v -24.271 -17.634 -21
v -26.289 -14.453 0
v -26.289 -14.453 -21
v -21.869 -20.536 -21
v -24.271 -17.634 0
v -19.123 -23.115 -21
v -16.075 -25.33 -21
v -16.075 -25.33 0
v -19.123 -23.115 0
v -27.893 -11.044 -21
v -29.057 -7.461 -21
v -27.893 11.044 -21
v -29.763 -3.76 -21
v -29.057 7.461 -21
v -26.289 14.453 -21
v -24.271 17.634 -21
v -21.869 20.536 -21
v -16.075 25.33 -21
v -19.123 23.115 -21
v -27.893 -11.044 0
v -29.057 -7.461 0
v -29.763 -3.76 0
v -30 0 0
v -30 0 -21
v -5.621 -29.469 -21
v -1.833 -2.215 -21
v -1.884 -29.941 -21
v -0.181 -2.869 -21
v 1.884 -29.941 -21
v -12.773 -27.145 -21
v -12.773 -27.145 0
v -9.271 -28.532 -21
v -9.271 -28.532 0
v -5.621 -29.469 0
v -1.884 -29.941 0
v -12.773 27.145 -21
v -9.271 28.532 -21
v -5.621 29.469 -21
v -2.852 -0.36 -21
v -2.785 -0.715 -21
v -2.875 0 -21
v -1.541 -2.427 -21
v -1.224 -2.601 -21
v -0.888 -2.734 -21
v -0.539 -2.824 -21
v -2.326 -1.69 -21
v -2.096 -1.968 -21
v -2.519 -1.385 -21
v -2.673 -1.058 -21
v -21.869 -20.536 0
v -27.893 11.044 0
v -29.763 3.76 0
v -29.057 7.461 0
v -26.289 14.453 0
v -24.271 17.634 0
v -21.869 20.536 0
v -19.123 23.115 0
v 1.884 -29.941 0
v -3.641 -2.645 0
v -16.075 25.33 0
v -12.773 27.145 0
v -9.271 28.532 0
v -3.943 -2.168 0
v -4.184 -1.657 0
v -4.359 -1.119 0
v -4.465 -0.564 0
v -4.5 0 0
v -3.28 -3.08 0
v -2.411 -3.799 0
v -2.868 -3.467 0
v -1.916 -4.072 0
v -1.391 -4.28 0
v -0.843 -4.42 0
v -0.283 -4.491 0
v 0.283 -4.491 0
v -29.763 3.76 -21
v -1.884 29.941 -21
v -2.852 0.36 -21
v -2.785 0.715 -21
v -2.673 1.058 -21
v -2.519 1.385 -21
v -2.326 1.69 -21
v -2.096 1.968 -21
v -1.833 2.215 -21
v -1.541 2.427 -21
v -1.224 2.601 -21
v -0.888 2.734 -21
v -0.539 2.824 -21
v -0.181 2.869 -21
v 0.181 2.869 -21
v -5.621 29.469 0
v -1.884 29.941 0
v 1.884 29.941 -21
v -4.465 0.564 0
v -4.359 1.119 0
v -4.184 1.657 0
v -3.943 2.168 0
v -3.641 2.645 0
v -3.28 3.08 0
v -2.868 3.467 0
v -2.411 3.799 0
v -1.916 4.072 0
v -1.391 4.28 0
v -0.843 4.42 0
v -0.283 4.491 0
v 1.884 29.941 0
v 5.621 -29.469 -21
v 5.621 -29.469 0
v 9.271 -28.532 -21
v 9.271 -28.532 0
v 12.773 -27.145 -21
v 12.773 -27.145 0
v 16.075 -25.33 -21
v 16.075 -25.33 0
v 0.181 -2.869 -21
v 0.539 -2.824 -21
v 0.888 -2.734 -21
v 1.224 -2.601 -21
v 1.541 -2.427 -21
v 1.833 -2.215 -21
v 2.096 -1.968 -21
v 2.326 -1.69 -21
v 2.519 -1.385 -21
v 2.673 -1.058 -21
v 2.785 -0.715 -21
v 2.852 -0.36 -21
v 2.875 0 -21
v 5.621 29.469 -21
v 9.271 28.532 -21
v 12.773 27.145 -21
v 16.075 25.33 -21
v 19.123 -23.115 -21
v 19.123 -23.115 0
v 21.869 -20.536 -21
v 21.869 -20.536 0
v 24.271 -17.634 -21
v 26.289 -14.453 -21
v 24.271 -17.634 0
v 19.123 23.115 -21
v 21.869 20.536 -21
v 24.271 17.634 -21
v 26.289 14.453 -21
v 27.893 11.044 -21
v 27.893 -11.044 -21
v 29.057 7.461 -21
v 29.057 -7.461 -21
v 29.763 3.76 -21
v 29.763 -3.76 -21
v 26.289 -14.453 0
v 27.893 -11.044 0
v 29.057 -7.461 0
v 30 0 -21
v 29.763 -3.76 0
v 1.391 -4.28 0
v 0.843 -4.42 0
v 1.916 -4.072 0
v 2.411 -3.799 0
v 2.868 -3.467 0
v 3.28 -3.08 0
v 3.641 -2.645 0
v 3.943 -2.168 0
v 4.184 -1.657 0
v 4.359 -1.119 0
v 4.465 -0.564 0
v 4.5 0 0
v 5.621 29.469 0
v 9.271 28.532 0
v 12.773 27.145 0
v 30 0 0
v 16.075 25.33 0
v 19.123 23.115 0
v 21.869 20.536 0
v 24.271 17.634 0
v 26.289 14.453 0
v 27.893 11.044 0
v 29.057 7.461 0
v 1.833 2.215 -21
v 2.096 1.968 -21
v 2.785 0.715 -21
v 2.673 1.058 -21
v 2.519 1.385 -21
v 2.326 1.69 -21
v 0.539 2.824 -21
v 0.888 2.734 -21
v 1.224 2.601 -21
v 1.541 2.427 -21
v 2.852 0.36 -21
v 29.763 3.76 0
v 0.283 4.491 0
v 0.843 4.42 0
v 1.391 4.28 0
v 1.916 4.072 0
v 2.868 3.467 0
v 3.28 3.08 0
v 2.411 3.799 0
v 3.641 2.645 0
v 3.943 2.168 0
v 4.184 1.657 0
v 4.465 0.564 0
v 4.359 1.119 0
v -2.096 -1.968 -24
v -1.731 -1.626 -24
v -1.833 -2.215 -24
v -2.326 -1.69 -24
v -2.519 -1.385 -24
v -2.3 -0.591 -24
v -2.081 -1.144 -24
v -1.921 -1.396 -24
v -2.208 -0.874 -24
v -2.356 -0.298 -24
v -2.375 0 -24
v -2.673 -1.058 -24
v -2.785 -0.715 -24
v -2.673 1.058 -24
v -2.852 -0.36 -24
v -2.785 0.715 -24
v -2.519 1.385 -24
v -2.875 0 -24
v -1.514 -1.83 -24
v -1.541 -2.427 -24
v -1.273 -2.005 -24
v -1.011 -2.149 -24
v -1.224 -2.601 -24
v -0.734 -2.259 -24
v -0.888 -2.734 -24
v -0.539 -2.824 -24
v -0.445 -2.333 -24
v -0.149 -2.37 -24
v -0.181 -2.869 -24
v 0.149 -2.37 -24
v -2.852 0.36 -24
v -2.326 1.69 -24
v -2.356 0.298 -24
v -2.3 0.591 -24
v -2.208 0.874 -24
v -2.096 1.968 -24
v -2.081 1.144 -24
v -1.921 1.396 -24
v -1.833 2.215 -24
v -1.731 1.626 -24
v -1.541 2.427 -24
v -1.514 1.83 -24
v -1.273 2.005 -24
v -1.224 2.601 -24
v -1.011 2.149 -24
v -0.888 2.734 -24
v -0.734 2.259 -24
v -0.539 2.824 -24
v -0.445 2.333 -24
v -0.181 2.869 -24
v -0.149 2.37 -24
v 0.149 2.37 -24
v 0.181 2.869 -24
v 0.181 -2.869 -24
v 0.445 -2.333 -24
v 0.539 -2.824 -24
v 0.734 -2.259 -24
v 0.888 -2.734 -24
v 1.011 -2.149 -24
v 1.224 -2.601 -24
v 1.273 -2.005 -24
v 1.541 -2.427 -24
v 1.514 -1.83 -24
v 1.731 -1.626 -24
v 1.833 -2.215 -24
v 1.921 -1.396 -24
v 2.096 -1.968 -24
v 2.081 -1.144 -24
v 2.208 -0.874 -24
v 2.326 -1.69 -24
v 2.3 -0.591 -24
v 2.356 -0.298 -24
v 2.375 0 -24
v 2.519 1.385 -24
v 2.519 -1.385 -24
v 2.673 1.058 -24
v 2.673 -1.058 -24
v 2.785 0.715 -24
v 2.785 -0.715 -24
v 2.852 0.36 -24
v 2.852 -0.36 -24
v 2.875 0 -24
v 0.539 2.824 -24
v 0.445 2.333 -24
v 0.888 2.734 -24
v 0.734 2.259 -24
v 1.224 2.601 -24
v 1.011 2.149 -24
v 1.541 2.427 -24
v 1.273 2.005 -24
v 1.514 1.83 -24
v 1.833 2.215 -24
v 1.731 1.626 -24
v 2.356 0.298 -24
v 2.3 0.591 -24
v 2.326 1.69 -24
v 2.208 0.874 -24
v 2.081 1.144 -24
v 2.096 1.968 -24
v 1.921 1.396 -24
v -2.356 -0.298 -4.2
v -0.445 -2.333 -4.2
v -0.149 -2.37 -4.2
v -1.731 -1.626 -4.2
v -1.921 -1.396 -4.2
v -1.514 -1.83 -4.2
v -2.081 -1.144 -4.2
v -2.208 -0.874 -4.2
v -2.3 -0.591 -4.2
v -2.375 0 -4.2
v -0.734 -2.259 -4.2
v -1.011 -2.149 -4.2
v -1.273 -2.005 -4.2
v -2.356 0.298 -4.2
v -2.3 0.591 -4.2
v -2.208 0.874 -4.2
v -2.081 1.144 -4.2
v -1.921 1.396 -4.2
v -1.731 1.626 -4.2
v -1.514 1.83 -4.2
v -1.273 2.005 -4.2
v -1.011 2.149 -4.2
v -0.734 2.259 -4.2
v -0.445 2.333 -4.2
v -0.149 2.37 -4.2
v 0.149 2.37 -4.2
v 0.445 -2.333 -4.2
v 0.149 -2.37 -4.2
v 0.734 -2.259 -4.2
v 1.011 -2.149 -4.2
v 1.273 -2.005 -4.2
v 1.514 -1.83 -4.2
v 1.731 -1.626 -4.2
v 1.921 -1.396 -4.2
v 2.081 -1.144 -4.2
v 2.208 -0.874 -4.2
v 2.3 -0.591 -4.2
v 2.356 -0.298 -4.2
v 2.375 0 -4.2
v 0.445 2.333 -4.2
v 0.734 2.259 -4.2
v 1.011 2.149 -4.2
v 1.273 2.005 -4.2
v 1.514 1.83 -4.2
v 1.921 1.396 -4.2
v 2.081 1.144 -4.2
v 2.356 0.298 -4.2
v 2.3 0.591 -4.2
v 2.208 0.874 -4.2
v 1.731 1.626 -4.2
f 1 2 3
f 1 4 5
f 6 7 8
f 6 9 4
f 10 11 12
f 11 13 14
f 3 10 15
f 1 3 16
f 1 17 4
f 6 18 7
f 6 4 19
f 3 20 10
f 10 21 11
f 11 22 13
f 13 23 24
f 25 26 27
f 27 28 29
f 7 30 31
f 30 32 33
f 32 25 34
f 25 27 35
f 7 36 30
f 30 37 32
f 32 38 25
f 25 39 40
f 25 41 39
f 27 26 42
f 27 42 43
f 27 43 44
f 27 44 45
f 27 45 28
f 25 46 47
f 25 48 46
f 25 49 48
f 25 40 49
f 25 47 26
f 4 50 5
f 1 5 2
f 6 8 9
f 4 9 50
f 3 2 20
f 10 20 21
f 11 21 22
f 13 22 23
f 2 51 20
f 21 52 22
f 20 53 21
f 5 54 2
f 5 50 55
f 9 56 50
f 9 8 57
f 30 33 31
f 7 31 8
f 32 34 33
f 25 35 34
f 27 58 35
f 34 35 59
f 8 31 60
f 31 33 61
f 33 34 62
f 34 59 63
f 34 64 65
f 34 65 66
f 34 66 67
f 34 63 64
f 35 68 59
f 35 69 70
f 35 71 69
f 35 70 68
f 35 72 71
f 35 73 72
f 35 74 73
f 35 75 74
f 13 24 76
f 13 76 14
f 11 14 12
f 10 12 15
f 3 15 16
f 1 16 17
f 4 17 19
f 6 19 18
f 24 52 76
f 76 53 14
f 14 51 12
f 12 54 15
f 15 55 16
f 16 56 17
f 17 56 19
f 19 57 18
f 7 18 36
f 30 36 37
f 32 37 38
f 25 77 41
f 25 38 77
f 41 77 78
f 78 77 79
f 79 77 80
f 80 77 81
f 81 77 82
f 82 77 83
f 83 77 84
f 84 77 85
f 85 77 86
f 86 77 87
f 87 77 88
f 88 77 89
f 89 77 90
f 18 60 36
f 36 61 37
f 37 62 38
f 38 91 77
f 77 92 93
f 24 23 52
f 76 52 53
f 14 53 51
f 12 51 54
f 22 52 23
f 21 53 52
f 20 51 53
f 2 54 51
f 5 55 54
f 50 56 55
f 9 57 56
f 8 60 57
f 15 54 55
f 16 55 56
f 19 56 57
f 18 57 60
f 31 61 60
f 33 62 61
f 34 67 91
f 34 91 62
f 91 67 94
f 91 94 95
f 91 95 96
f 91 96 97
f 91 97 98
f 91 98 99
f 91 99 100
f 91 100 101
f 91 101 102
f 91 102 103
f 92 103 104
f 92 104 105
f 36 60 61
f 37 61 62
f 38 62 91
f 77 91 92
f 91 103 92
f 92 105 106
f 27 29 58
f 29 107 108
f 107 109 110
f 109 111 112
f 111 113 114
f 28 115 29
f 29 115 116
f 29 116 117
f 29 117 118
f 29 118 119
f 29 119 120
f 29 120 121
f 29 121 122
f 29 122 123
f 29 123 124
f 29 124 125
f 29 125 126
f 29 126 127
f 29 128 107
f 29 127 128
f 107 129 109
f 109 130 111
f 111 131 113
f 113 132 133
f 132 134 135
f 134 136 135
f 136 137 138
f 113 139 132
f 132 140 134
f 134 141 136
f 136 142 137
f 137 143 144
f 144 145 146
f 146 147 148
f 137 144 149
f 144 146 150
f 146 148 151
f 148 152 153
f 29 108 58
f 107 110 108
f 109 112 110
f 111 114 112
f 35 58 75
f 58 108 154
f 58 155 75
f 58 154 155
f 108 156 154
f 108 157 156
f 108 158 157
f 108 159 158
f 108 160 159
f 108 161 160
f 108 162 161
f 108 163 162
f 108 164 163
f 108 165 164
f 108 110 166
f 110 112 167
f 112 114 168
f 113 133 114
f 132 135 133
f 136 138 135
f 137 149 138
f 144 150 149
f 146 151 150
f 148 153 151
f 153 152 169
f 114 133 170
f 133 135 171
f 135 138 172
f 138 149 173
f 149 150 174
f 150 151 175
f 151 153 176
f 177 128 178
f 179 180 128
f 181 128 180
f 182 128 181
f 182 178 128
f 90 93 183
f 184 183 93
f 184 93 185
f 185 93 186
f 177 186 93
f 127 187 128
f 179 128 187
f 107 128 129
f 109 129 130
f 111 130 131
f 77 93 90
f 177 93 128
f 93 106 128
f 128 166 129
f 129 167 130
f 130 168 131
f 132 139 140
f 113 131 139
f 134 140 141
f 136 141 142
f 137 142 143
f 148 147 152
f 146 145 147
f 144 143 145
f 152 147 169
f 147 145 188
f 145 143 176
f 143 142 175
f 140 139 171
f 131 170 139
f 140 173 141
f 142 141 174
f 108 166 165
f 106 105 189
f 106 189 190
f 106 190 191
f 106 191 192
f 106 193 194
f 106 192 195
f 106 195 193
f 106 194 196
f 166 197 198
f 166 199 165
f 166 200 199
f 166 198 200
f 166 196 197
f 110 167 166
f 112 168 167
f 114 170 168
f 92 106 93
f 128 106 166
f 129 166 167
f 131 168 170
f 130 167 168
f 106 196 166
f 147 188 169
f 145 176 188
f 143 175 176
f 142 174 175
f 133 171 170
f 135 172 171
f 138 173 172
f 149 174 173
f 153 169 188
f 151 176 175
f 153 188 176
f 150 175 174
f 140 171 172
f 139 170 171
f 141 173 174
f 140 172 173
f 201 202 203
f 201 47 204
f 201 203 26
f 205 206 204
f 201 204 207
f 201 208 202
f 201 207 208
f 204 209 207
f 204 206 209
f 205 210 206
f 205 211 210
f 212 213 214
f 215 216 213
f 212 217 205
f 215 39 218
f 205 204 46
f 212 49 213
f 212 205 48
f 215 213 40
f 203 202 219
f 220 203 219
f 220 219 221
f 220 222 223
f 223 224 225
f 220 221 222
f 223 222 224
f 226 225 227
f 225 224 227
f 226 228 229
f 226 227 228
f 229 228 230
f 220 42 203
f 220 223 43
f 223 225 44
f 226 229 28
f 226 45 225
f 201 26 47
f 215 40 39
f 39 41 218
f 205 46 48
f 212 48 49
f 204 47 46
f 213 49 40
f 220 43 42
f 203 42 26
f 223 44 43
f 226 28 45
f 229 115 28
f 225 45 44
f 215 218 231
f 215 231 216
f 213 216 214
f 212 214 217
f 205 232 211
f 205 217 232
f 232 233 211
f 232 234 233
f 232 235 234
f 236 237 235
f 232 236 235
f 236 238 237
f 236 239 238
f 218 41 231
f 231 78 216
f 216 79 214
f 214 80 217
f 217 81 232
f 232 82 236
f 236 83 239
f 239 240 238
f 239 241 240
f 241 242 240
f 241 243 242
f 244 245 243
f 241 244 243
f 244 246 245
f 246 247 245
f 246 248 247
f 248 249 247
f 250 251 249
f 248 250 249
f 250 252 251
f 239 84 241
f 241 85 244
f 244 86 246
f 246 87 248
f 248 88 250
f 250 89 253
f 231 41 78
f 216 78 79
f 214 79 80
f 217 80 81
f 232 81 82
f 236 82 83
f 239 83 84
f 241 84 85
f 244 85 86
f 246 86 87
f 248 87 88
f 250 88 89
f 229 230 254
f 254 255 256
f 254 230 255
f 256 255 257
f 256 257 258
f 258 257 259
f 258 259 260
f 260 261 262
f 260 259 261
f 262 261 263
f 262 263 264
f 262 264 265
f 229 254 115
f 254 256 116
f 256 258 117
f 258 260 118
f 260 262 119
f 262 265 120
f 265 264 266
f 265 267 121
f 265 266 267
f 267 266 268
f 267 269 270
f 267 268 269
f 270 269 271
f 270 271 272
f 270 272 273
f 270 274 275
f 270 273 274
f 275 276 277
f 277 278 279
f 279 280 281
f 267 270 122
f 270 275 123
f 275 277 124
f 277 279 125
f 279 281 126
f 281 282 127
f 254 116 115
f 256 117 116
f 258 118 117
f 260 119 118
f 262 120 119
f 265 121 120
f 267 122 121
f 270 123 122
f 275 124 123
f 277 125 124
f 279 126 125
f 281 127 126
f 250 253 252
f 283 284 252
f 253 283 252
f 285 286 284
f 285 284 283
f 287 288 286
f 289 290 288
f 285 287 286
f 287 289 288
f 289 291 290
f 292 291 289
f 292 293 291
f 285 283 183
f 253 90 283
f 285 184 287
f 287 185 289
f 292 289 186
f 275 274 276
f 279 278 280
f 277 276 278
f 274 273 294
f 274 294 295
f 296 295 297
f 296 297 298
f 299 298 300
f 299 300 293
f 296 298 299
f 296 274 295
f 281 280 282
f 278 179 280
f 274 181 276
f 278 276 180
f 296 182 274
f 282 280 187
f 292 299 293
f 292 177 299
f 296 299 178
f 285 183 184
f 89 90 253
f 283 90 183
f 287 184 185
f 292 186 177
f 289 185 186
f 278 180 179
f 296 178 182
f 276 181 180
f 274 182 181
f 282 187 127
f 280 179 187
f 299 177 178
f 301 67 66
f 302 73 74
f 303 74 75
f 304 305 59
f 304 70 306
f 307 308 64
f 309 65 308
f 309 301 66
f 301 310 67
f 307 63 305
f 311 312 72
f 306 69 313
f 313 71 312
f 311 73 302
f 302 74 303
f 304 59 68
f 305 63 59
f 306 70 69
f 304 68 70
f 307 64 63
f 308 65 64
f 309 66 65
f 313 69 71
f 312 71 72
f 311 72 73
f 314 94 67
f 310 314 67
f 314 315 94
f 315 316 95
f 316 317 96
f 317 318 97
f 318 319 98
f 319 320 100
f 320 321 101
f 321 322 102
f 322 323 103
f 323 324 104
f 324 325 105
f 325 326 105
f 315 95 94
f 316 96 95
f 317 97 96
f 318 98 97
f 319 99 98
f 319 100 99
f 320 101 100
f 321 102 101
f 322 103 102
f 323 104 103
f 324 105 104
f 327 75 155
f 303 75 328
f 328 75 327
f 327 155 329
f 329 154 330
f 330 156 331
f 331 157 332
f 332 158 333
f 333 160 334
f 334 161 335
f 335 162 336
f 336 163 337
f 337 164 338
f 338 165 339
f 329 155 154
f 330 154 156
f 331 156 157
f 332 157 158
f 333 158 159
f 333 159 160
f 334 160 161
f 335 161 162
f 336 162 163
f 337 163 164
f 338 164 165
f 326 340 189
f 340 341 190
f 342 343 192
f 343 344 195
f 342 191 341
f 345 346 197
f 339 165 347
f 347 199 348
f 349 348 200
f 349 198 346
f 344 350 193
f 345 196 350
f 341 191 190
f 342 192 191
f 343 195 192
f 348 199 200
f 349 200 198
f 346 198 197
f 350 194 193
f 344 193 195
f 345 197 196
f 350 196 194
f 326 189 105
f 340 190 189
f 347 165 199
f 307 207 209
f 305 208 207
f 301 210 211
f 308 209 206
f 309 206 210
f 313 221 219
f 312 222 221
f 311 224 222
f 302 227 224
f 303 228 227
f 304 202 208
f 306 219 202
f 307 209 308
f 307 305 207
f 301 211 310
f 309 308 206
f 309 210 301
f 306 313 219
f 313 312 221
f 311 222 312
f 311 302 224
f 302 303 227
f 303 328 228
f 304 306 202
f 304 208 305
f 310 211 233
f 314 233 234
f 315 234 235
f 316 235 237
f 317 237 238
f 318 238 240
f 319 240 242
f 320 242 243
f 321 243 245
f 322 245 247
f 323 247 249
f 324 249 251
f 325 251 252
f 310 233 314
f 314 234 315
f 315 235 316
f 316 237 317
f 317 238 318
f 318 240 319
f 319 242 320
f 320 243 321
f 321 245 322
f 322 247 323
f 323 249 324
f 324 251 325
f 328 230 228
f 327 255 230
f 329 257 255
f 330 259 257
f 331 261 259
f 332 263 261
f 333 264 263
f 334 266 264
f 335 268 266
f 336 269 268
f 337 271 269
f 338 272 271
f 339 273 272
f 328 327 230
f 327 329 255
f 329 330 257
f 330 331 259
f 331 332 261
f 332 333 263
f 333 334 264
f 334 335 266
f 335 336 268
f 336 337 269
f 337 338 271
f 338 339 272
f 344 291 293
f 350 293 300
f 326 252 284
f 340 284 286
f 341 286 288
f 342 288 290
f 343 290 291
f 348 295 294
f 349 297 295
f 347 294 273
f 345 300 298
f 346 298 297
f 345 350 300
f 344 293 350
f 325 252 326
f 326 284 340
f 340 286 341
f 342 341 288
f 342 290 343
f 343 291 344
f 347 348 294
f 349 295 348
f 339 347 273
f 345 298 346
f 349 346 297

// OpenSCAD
$fn = 50;

difference() {
	union() {
		translate(v = [0, 0, -21.0]) {
			cylinder(h = 21, r = 30.0);
		}
		#translate(v = [0, 0, -24.0]) {
			cylinder(h = 24, r = 2.875);
		}
	}
	union() {
		translate(v = [0, 0, 0]) {
			rotate(a = [0, 0, 0]) {
				difference() {
					union() {
						translate(v = [0, 0, -24.0]) {
							cylinder(h = 24, r = 2.25);
						}
						translate(v = [0, 0, -4.2]) {
							cylinder(h = 4.2, r1 = 2.375, r2 = 4.5);
						}
						translate(v = [0, 0, -24.0]) {
							cylinder(h = 24, r = 2.375);
						}
						translate(v = [0, 0, -24.0]) {
							cylinder(h = 24, r = 2.25);
						}
					}
					union();
				}
			}
		}
	}
}
